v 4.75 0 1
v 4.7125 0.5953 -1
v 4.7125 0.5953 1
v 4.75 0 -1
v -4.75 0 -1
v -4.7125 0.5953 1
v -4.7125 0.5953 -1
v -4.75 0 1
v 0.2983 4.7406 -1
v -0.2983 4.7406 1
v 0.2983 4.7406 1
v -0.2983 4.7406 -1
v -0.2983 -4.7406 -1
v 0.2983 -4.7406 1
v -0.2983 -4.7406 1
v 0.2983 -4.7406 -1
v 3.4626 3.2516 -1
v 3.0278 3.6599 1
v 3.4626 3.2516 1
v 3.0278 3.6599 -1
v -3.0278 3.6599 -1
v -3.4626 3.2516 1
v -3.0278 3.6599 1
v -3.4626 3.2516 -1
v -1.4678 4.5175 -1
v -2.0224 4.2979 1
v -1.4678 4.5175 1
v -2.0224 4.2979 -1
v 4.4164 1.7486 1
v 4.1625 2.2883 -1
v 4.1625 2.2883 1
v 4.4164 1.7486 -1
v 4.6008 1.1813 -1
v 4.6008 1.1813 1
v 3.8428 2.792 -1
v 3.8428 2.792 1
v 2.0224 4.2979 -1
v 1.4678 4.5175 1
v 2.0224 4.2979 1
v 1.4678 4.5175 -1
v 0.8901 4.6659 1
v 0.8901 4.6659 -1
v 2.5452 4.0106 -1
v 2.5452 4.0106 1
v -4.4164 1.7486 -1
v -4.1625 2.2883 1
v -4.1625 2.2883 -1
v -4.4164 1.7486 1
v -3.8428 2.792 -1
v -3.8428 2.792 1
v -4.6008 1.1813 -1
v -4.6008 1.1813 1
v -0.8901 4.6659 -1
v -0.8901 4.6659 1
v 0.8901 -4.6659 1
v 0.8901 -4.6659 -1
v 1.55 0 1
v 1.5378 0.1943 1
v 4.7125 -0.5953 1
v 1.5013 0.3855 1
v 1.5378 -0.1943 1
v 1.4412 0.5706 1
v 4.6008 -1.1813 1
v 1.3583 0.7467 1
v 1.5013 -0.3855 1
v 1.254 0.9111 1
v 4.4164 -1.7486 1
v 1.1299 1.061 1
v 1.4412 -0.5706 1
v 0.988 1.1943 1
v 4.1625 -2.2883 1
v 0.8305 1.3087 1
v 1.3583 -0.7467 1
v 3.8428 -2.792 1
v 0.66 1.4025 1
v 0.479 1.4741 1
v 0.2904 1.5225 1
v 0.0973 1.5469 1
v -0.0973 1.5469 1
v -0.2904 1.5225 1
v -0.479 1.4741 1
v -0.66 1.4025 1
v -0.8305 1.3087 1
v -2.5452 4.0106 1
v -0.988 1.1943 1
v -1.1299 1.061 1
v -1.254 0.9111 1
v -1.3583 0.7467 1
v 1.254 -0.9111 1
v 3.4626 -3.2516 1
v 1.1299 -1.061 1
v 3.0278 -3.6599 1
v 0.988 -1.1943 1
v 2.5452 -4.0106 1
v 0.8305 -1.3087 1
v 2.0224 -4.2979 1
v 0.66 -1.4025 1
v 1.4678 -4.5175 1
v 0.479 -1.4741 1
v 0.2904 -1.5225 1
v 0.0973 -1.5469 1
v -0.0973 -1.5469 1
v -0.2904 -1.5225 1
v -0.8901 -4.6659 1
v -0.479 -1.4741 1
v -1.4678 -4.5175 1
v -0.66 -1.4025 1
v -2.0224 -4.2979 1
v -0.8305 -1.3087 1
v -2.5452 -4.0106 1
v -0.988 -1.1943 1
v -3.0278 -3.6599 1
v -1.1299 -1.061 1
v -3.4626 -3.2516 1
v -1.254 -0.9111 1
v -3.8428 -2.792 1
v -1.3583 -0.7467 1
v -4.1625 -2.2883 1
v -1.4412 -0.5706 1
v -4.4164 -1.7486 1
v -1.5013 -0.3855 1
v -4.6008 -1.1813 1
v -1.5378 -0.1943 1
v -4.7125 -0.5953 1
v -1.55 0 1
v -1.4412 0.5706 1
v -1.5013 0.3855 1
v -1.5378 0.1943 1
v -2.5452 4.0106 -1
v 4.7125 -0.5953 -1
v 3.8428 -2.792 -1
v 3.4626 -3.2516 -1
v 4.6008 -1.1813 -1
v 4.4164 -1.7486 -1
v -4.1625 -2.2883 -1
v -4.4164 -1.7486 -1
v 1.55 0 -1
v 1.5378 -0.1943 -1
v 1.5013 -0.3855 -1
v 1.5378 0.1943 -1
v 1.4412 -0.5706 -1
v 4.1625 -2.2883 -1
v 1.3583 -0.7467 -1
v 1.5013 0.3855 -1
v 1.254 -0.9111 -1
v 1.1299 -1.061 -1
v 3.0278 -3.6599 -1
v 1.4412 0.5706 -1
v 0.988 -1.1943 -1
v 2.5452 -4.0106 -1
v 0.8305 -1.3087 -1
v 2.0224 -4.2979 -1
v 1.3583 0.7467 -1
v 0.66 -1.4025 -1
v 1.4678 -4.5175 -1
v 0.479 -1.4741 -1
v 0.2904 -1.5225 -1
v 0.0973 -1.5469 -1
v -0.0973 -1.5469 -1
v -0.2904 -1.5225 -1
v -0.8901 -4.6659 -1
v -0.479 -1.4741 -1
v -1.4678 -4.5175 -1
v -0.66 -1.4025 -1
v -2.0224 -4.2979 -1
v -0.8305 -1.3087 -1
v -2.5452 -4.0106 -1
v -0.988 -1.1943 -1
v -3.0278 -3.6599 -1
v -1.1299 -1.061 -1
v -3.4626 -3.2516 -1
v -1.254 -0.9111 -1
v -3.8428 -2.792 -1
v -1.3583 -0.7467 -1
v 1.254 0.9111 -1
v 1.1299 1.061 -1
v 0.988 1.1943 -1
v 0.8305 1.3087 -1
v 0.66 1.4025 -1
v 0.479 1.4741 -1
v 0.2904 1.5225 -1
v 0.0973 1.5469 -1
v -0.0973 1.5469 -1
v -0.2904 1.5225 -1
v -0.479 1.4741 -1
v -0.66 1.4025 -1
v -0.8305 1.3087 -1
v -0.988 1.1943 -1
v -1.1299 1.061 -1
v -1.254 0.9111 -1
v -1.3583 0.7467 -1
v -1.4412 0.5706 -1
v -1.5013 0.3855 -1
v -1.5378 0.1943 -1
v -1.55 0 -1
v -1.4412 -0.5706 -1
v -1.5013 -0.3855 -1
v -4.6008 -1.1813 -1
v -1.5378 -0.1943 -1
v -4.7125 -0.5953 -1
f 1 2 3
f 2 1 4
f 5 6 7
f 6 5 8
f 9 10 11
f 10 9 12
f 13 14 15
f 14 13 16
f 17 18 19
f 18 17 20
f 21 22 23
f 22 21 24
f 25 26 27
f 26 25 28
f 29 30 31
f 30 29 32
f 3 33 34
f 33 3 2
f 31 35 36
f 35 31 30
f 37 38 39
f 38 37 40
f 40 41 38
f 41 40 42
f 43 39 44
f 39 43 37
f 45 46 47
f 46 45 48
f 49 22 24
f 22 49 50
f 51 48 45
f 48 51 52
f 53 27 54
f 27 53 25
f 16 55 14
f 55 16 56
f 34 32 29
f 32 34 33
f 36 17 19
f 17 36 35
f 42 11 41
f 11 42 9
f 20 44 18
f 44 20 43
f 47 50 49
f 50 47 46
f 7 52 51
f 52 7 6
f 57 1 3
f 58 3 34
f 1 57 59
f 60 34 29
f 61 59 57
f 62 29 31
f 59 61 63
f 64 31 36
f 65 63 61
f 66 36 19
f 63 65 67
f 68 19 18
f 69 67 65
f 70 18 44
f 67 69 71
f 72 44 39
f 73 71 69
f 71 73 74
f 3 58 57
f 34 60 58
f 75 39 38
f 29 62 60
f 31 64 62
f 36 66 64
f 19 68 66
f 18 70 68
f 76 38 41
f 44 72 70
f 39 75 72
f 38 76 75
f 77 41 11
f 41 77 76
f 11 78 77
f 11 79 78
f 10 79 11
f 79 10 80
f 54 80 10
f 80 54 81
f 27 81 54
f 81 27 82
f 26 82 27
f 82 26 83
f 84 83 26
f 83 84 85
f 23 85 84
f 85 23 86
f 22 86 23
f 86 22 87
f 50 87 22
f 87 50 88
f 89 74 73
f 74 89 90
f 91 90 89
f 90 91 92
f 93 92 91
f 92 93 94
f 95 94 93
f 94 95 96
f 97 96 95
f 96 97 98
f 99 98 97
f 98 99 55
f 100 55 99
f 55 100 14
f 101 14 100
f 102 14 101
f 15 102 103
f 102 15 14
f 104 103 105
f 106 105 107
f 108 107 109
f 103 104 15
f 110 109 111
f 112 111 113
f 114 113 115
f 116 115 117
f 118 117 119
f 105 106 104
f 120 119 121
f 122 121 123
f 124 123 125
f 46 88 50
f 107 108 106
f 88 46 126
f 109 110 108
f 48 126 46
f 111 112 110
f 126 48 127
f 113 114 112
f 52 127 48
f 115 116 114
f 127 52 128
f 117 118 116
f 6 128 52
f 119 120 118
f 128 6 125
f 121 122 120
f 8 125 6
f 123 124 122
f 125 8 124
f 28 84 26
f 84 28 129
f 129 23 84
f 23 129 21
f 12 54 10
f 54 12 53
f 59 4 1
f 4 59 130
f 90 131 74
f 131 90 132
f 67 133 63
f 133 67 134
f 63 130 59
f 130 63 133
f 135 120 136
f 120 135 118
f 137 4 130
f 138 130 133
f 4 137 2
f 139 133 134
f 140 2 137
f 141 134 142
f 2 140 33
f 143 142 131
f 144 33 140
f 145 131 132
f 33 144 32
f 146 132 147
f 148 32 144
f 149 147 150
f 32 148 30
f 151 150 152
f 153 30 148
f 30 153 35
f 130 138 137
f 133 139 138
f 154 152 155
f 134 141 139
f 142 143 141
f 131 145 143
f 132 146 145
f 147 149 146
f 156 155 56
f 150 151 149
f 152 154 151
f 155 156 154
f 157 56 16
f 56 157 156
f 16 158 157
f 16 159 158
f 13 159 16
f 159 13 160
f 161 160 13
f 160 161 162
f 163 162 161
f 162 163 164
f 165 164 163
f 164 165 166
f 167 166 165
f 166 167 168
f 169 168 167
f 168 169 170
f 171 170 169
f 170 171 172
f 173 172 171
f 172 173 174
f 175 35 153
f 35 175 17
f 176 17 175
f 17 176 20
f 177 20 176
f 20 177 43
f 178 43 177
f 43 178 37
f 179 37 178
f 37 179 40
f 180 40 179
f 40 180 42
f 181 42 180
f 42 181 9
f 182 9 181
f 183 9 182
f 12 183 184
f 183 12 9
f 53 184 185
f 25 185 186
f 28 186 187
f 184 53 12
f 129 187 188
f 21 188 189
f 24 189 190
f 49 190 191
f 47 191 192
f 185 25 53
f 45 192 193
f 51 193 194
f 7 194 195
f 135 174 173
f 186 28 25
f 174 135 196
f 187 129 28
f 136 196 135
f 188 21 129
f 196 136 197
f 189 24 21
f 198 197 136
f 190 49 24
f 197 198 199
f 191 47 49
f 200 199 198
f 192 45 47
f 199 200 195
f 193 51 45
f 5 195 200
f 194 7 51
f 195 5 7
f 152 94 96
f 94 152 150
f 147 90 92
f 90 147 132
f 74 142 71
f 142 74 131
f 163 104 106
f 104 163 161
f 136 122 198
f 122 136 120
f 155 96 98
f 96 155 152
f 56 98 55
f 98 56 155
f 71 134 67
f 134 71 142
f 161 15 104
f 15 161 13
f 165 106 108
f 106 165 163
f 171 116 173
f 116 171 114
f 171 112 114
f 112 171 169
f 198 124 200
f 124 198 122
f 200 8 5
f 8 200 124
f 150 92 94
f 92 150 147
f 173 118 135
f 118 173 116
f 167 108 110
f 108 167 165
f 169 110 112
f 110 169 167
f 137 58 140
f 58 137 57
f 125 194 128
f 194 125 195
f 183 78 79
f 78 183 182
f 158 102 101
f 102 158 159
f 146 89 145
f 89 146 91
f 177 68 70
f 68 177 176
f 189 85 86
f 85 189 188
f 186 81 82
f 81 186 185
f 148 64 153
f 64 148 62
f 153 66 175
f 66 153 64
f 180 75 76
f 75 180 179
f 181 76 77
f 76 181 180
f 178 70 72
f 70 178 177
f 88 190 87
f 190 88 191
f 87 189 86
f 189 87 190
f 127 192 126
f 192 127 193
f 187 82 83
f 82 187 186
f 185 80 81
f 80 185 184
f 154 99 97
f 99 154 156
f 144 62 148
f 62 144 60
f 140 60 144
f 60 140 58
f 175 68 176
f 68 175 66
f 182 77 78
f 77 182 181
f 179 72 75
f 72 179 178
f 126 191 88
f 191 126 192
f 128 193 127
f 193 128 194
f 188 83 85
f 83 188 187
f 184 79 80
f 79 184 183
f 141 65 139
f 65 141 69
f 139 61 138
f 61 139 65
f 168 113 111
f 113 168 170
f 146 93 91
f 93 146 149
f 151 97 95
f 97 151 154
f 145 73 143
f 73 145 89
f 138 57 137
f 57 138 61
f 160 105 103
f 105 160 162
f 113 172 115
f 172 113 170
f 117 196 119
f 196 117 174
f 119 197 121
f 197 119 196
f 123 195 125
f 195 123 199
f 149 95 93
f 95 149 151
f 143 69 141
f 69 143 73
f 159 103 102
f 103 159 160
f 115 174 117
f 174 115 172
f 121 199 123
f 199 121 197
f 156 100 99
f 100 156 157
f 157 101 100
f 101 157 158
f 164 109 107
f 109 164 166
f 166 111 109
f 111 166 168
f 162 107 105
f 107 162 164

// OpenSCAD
$fn = 50;


difference() {
	union() {
		translate(v = [0, 0, -1.0000000000]) {
			cylinder(h = 2, r = 4.7500000000);
		}
	}
	union() {
		translate(v = [0, 0, -100.0000000000]) {
			cylinder(h = 200, r = 1.5500000000);
		}
	}
}
